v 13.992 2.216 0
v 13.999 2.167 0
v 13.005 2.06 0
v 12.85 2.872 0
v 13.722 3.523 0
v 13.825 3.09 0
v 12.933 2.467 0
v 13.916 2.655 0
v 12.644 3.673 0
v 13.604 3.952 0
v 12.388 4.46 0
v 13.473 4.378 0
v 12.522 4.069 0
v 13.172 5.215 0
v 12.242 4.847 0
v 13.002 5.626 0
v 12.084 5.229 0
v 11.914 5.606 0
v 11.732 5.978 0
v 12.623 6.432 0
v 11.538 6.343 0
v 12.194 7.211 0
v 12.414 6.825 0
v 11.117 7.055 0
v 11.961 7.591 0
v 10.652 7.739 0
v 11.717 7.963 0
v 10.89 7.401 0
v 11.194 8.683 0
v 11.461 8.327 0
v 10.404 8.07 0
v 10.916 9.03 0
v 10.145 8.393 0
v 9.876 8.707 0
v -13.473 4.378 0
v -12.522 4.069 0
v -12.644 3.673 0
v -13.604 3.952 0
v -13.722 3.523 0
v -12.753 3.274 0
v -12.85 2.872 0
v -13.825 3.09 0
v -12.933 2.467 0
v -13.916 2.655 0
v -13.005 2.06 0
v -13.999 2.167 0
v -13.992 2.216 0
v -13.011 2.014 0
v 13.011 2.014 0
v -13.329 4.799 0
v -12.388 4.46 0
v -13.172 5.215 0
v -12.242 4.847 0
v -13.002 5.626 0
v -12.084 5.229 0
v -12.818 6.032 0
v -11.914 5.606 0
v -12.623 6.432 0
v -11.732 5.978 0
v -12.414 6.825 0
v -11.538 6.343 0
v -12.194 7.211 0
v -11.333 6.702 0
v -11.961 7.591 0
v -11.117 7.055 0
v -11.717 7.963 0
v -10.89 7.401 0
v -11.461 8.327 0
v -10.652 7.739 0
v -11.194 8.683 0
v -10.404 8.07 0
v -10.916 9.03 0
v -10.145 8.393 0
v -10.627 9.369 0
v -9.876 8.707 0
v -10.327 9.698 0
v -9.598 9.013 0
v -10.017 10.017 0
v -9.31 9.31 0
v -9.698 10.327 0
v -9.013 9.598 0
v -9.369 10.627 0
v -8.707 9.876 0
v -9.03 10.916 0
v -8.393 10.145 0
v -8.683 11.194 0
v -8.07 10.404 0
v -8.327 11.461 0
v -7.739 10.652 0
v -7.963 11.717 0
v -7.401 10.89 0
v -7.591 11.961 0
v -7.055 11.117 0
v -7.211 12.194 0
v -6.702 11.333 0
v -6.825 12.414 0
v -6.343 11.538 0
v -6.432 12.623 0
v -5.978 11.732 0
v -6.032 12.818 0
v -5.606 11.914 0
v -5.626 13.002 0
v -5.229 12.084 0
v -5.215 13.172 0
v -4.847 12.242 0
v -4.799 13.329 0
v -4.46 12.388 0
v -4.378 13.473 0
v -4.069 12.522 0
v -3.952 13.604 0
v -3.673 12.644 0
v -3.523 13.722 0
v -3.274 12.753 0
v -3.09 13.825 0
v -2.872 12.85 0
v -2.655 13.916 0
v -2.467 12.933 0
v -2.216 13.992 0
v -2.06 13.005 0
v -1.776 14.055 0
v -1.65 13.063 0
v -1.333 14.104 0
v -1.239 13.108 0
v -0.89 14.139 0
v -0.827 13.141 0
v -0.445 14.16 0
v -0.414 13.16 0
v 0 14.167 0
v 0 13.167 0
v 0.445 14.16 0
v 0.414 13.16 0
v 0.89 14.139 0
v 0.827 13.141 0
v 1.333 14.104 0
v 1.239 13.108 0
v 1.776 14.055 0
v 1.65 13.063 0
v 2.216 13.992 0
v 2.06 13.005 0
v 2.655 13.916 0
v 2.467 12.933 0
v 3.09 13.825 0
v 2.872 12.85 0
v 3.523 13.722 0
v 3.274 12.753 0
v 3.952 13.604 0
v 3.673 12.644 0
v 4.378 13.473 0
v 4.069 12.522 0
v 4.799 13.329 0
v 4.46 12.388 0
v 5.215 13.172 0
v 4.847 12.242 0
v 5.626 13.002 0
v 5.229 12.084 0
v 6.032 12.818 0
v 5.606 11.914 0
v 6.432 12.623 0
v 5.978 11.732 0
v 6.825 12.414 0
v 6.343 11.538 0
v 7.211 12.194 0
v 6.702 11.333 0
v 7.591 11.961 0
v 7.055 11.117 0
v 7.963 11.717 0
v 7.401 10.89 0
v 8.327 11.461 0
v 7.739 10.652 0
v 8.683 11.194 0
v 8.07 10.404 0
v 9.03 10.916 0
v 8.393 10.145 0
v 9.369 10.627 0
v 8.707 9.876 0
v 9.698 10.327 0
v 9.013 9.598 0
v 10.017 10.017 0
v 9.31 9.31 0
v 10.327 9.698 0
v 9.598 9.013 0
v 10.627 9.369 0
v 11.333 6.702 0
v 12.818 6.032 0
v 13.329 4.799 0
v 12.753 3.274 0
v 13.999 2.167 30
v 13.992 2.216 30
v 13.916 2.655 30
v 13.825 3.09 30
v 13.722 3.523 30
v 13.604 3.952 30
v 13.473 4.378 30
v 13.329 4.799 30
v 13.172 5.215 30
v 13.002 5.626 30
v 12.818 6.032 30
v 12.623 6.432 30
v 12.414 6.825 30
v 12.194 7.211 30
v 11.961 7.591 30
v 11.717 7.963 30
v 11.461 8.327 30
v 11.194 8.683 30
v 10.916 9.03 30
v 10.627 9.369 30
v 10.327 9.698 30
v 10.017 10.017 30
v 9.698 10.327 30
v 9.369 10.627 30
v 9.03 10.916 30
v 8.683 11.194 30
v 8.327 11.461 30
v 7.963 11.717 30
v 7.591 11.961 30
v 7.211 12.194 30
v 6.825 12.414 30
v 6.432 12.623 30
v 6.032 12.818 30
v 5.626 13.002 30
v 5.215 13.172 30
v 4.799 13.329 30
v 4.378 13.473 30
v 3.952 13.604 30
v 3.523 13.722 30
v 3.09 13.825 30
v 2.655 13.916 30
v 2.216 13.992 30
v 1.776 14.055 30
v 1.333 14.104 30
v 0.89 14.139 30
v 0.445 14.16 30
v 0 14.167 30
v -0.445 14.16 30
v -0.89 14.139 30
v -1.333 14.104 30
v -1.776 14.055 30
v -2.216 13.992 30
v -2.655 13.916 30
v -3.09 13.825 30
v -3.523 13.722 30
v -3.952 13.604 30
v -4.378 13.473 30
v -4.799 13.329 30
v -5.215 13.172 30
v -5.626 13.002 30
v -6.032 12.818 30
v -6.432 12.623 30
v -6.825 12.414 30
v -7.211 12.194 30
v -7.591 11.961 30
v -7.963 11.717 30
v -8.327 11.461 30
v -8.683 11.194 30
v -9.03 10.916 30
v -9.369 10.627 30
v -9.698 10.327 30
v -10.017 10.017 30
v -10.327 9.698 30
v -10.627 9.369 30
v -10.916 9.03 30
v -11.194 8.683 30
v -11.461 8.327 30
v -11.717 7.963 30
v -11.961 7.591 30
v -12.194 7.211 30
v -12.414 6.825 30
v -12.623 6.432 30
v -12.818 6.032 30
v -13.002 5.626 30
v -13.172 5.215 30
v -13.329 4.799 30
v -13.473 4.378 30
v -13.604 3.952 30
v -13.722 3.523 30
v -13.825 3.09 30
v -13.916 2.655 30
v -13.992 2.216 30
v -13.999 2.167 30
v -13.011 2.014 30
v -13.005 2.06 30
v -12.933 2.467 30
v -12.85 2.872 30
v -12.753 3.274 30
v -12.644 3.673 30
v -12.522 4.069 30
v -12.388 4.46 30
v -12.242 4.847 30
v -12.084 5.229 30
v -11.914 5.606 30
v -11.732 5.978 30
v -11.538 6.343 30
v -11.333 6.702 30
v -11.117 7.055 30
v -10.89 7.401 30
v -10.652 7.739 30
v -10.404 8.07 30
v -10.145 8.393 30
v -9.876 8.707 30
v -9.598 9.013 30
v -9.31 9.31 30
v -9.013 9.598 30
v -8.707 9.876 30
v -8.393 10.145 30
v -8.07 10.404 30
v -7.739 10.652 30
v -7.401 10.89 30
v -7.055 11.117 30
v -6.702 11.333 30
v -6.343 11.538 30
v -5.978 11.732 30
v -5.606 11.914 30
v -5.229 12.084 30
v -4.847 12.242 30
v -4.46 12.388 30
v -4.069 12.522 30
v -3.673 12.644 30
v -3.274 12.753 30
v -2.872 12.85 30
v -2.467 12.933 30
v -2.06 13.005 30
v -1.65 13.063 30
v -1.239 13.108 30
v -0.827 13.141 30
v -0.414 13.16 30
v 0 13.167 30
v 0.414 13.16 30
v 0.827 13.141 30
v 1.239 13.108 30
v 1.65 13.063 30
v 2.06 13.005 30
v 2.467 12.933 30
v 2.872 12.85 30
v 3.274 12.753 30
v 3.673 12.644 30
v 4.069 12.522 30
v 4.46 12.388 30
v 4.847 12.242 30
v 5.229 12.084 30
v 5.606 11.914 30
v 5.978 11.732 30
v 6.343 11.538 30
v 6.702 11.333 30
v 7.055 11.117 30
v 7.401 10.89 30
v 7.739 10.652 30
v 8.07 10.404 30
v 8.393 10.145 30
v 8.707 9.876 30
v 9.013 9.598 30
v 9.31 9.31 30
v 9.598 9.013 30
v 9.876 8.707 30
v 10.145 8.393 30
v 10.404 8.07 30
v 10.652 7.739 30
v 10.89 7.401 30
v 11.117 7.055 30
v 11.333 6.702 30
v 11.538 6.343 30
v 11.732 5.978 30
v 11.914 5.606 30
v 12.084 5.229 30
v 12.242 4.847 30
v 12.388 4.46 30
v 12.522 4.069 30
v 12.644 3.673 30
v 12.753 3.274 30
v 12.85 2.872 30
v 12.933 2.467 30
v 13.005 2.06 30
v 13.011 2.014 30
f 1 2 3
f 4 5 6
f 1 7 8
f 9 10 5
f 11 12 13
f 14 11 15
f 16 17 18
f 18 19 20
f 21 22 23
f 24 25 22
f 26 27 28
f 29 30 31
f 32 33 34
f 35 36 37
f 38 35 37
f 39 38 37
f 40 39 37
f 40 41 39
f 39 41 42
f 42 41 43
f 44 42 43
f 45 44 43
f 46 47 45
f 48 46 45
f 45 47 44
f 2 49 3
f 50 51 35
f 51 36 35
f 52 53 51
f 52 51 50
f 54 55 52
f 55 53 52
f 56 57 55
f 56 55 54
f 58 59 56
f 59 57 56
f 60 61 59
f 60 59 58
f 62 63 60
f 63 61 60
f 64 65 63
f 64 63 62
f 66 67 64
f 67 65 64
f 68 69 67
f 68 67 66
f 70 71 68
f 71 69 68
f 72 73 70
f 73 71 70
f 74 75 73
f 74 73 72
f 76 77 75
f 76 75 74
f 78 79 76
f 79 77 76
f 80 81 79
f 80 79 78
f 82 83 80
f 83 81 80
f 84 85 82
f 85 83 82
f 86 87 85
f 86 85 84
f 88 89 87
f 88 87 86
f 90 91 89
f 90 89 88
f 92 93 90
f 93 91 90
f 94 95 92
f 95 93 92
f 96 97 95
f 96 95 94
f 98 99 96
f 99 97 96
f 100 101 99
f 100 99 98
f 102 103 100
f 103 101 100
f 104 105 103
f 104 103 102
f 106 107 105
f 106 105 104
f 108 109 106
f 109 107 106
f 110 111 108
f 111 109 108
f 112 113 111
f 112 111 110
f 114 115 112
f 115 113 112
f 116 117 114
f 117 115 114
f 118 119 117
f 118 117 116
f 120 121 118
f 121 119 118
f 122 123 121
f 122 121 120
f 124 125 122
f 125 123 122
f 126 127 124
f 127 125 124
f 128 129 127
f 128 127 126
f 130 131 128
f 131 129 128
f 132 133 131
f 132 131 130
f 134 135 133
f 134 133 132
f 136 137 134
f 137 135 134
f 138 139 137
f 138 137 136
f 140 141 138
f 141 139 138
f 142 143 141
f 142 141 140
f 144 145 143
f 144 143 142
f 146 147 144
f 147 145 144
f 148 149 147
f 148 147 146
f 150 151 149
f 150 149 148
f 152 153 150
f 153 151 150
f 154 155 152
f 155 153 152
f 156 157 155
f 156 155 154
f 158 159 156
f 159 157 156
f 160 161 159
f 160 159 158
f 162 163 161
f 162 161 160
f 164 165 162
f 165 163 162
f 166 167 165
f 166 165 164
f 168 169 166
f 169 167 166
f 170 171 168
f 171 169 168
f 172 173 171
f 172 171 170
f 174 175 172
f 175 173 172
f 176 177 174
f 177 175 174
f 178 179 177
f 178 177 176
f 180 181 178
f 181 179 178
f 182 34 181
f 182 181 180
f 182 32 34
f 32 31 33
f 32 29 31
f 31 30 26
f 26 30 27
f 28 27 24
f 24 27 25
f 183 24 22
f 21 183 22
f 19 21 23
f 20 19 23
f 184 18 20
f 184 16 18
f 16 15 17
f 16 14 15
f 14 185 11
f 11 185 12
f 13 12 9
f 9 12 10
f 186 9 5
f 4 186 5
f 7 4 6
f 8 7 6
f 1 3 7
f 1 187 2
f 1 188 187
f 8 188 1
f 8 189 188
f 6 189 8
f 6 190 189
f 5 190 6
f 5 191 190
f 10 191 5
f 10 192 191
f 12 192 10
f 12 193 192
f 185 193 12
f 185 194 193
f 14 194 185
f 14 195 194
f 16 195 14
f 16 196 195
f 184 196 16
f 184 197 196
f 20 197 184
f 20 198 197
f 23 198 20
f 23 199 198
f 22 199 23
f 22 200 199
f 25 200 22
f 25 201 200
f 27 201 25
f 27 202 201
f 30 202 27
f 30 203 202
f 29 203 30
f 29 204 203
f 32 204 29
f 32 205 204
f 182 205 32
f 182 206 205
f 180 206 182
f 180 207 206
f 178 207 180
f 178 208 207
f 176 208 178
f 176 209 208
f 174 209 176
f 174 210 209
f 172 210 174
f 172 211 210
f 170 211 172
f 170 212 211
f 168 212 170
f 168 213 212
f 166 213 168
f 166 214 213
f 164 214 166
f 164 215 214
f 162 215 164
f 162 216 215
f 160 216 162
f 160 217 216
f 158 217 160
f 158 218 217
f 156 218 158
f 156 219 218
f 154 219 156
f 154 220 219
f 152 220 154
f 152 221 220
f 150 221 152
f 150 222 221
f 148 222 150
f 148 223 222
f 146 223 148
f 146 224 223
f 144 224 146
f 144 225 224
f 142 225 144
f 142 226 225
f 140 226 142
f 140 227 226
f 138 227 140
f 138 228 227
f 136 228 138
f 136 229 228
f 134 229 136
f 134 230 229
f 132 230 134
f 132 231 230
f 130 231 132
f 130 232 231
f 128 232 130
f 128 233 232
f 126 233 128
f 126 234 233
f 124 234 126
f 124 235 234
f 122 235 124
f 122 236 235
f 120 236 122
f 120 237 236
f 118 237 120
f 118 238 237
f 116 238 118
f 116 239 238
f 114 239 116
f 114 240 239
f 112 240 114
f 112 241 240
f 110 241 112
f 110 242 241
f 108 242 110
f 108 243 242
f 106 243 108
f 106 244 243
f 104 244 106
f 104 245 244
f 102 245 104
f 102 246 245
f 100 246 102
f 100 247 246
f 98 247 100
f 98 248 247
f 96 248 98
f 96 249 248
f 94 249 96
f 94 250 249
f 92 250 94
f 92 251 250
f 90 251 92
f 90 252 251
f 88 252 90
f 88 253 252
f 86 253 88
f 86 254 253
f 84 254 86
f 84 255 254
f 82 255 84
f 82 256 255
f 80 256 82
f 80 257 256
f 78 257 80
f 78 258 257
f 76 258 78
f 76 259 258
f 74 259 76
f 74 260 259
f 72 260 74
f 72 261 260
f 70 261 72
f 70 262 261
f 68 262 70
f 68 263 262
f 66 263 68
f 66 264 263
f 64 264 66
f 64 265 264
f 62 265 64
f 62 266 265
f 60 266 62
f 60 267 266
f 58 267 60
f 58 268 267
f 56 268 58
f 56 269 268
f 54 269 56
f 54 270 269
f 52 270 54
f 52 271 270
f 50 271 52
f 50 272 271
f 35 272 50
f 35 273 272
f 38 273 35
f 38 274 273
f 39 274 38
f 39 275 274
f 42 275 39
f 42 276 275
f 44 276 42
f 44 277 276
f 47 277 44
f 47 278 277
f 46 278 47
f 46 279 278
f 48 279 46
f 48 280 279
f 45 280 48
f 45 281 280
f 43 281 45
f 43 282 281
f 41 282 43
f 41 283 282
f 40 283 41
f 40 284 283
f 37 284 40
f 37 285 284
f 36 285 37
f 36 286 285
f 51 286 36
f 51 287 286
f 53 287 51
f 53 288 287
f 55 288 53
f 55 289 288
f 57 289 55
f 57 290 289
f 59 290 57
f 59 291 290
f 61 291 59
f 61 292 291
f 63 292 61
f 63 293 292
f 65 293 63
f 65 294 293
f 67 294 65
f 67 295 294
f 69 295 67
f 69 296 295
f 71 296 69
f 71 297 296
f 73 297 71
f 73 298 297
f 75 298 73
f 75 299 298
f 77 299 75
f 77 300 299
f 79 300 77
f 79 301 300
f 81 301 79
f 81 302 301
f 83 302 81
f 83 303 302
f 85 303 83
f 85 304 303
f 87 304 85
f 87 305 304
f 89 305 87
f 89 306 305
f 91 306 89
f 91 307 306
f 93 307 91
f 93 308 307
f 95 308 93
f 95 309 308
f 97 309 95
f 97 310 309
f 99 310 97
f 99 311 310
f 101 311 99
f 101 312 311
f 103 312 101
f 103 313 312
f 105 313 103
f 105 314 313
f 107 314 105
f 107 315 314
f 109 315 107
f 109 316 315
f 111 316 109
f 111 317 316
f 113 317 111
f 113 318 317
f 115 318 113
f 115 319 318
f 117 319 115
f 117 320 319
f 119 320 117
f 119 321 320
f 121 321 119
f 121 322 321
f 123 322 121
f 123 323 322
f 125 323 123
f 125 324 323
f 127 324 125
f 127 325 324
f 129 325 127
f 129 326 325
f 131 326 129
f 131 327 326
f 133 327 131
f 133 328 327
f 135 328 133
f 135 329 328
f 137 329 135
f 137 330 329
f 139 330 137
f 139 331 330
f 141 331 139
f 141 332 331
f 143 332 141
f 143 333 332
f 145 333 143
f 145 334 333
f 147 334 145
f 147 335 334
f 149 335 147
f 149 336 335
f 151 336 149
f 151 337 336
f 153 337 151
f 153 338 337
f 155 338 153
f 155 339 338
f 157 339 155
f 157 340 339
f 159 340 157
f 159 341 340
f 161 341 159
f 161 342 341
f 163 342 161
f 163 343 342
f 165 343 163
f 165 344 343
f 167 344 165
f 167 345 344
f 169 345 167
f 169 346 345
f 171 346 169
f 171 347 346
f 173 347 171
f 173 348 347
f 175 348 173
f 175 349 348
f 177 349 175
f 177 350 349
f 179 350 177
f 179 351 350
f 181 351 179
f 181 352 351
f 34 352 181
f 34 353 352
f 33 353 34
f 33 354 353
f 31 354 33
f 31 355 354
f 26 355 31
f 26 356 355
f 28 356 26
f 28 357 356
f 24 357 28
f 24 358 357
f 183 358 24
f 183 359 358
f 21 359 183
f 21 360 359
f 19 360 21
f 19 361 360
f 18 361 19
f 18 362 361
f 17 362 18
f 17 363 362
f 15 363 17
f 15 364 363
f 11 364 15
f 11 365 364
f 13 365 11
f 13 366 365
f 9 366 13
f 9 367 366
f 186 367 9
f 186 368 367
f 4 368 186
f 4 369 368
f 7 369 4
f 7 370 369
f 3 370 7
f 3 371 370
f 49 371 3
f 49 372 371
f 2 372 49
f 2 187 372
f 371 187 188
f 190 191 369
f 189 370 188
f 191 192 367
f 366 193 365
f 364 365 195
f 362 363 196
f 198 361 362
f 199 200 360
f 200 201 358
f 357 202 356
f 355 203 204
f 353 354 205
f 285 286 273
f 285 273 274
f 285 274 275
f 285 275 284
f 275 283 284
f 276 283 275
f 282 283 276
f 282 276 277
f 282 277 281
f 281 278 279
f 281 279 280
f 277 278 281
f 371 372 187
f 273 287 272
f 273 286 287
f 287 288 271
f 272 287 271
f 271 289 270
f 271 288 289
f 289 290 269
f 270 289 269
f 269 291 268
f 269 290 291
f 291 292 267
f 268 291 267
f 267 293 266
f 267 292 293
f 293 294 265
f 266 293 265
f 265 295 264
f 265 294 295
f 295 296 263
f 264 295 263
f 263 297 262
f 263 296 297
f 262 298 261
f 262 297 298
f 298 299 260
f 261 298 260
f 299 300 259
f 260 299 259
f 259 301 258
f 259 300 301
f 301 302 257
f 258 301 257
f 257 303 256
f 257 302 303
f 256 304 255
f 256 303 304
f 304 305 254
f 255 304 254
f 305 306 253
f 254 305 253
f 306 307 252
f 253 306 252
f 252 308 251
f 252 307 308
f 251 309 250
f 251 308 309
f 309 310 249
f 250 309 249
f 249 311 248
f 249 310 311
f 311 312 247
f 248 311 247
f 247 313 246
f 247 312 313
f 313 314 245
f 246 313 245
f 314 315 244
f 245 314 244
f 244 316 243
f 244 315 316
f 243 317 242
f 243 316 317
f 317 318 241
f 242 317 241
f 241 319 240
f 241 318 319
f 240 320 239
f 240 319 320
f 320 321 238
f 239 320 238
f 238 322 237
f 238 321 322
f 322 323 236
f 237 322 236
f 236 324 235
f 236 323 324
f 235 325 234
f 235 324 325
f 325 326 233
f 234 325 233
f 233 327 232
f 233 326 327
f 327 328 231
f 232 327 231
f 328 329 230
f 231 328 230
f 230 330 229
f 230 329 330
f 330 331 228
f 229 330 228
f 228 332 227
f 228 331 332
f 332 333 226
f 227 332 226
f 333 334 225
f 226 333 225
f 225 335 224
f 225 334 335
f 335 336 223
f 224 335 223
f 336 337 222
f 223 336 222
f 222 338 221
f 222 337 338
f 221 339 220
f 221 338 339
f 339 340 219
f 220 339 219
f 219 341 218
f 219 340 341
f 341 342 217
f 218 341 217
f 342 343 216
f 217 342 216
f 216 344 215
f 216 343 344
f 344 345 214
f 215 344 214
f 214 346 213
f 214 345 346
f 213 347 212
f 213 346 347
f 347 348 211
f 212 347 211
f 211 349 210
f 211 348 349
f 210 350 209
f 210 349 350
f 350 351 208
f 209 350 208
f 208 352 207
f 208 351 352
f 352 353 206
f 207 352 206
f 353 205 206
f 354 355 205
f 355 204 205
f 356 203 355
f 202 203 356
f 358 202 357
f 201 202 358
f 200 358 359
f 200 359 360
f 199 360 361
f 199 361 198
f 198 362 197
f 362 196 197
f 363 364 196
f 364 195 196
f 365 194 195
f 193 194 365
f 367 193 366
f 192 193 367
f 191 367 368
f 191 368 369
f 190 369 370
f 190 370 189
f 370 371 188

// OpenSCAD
// Définition des variables
h = 12; // Hauteur de l'arc
c = 28; // Longueur de la corde
thickness = 1; // Épaisseur de l'arc en mm
height = 30; // Hauteur de l'extrusion en mm

// Calcul du rayon du cercle
r = (h / 2) + (c^2 / (8 * h));

// Calcul de l'angle de l'arc
angle = 2 * asin(c / (2 * r));

// Création de l'arc avec épaisseur
linear_extrude(height = height)
    difference() {
        difference() {
            circle(r = r, $fn = 200);
            circle(r = r - thickness, $fn = 200);
        }
        translate([-r, -r])
            square([2 * r, r]);
        rotate([0, 0, -angle / 2])
            translate([0, -r])
                square([r, 2 * r]);
        rotate([0, 0, angle / 2])
            translate([-r, -r])
                square([r, 2 * r]);
    }

// Annotations (optionnelles, à commenter pour l'impression 3D)
/*color("black") {
    translate([0, -r-2])
        text(str("Corde: ", c, " mm"), size = 2, halign = "center");
    translate([-r-3, h/2])
        rotate([0,0,90])
            text(str("Hauteur: ", h, " mm"), size = 2, halign = "center");
    translate([0, r+2])
        text(str("Rayon: ", round(r*100)/100, " mm"), size = 2, halign = "center");
}*/
